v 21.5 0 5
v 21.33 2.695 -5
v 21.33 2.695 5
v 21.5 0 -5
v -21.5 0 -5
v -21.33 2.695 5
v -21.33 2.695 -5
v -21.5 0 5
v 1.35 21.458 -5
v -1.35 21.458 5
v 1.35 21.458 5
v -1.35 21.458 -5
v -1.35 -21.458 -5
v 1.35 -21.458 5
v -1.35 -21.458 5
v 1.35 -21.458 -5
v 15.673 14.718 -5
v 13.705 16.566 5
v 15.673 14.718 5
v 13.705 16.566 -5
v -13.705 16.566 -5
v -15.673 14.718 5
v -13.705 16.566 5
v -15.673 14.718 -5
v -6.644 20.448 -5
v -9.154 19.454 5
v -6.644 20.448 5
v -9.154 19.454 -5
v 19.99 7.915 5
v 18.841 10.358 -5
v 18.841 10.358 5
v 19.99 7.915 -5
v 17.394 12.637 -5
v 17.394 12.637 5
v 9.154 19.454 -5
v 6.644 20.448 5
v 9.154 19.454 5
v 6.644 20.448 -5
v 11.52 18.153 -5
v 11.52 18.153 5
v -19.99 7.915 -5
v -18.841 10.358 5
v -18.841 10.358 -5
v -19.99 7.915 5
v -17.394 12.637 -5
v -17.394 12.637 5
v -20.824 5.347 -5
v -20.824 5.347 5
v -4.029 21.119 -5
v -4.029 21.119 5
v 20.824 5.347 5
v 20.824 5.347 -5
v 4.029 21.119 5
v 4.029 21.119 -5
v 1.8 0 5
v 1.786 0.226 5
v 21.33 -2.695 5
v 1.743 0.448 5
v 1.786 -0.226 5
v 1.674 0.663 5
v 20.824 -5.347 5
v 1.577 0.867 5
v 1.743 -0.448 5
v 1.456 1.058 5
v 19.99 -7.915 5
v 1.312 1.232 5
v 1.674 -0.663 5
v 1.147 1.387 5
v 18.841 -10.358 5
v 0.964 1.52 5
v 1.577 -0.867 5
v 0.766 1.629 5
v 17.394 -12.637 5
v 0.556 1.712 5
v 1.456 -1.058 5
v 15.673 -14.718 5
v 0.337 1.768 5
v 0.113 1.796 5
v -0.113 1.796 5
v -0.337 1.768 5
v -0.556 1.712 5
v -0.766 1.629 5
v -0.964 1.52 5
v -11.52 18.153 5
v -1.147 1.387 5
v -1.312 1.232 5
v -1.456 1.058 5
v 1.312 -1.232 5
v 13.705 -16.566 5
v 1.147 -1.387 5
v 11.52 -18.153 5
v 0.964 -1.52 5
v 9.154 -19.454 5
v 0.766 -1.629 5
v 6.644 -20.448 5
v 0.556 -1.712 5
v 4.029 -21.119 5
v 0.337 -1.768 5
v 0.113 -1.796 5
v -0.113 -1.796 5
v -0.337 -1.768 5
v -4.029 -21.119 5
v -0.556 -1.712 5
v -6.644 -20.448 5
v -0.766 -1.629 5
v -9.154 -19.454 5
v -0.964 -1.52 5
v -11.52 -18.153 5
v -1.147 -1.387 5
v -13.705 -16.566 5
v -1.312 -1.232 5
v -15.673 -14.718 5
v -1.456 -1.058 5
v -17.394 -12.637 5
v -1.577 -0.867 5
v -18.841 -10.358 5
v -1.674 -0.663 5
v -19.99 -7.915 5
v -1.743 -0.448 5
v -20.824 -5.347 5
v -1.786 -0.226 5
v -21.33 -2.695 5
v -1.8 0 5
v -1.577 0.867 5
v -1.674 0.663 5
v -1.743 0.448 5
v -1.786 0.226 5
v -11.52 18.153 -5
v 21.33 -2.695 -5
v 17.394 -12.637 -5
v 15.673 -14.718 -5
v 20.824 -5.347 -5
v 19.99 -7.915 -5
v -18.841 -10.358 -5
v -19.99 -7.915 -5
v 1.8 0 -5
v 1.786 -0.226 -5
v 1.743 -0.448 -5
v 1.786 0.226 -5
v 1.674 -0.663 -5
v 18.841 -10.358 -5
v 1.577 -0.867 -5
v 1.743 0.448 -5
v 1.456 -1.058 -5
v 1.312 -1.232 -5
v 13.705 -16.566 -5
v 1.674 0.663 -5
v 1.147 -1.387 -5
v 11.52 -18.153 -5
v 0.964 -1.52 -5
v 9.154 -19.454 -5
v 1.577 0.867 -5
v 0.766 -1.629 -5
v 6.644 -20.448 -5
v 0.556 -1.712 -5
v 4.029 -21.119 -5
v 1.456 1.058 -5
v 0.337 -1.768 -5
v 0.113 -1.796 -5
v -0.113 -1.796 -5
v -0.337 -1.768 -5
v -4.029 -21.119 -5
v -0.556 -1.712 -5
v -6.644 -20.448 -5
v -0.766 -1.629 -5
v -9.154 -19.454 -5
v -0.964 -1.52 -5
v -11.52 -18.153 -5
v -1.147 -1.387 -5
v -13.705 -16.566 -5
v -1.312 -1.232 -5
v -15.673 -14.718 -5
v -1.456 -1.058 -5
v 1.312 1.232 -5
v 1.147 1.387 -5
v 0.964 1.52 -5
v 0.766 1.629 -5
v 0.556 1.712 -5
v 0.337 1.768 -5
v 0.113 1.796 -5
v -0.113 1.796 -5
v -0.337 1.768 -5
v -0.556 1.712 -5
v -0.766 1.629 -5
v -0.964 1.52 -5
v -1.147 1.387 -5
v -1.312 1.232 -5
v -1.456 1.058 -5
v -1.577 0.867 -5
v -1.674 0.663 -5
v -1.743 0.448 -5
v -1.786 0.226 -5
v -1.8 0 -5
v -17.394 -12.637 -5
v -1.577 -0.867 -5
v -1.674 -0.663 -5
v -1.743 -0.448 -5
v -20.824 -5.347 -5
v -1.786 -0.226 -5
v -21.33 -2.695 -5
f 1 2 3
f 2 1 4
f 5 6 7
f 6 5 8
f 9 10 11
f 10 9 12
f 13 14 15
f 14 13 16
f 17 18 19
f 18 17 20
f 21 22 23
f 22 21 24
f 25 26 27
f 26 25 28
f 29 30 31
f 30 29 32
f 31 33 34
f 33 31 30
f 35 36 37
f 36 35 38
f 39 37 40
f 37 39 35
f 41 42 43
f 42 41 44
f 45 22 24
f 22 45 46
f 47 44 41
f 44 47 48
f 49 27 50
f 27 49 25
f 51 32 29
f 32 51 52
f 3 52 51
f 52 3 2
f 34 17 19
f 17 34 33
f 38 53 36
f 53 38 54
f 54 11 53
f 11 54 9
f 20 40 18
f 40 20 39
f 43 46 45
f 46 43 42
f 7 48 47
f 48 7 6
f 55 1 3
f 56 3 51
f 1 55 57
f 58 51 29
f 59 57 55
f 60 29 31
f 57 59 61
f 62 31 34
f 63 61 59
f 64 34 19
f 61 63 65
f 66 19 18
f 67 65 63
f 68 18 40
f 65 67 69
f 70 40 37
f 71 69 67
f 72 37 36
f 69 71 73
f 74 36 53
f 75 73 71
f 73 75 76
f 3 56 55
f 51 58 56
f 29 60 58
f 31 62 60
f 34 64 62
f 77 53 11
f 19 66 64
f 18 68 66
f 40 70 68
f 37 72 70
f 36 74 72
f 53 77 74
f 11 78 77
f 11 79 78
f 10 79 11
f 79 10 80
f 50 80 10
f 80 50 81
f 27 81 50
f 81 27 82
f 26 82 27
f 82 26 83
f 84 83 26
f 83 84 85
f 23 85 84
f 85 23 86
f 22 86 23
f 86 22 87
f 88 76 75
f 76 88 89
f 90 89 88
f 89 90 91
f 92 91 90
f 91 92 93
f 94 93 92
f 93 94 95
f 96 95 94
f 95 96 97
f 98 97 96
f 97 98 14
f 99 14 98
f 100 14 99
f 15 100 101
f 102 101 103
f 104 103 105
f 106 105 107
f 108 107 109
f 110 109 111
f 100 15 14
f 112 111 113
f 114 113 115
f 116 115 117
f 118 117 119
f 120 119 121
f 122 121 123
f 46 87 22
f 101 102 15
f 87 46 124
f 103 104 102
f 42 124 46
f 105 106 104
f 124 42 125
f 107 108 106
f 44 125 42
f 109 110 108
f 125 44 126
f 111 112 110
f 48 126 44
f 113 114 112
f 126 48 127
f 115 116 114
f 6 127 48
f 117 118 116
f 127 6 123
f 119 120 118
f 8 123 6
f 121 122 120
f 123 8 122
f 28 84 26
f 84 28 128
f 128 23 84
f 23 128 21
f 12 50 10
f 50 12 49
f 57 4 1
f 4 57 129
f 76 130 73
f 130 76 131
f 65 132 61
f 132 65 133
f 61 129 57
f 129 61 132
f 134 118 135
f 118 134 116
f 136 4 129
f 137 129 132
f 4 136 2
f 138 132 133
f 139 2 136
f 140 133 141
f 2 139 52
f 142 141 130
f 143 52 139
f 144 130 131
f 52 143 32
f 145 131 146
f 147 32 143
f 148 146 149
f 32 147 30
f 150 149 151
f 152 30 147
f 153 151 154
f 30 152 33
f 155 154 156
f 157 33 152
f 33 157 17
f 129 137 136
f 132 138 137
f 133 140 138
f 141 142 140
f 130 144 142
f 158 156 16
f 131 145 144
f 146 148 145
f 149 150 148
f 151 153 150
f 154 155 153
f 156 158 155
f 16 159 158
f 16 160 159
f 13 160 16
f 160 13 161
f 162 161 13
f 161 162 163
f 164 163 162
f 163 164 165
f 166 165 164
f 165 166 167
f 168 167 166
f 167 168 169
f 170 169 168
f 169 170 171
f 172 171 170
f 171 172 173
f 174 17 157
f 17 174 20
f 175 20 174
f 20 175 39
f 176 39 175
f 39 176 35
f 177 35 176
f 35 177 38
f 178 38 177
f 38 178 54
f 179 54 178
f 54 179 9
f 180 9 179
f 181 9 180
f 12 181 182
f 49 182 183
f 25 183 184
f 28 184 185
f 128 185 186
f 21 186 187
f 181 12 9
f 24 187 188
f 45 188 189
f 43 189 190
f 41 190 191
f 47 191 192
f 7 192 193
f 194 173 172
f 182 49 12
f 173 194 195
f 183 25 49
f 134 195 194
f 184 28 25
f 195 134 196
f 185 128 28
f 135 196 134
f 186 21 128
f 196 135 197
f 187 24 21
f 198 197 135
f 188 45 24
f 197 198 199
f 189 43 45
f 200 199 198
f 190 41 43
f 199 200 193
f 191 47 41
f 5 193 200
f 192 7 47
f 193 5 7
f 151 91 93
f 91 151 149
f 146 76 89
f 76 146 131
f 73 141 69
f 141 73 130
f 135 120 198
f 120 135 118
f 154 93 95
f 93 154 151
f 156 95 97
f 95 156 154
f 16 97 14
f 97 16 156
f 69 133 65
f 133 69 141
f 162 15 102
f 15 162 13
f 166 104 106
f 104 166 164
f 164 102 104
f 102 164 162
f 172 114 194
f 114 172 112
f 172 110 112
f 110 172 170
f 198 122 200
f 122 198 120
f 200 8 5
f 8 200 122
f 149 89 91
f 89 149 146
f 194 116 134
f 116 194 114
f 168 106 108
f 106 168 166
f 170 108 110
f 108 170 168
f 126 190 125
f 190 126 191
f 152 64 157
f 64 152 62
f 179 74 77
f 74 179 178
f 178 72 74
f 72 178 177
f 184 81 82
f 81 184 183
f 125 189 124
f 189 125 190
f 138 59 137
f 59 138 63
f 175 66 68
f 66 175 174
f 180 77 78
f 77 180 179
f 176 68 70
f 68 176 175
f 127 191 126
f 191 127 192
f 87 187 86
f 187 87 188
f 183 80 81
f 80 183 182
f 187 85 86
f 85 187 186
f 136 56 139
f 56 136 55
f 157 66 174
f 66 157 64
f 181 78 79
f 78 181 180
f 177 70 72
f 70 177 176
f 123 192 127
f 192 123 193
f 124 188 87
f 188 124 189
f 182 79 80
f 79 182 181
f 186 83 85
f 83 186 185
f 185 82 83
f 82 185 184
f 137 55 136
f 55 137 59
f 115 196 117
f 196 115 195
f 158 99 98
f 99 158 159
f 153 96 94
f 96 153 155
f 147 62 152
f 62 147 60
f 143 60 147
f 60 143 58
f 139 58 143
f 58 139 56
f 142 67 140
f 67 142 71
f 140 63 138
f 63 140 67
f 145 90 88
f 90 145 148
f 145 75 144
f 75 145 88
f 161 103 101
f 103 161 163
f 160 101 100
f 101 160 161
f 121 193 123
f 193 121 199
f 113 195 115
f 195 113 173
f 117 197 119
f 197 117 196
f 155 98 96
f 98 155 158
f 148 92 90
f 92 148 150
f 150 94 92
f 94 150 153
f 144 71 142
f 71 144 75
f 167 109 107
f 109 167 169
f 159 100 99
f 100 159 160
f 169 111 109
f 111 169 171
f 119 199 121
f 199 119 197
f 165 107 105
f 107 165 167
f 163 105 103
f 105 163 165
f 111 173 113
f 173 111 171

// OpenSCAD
$fn = 50;


difference() {
	union() {
		translate(v = [0, 0, -5.0000000000]) {
			cylinder(h = 10, r = 21.5000000000);
		}
	}
	union() {
		translate(v = [0, 0, -100.0000000000]) {
			cylinder(h = 200, r = 1.8000000000);
		}
	}
}
